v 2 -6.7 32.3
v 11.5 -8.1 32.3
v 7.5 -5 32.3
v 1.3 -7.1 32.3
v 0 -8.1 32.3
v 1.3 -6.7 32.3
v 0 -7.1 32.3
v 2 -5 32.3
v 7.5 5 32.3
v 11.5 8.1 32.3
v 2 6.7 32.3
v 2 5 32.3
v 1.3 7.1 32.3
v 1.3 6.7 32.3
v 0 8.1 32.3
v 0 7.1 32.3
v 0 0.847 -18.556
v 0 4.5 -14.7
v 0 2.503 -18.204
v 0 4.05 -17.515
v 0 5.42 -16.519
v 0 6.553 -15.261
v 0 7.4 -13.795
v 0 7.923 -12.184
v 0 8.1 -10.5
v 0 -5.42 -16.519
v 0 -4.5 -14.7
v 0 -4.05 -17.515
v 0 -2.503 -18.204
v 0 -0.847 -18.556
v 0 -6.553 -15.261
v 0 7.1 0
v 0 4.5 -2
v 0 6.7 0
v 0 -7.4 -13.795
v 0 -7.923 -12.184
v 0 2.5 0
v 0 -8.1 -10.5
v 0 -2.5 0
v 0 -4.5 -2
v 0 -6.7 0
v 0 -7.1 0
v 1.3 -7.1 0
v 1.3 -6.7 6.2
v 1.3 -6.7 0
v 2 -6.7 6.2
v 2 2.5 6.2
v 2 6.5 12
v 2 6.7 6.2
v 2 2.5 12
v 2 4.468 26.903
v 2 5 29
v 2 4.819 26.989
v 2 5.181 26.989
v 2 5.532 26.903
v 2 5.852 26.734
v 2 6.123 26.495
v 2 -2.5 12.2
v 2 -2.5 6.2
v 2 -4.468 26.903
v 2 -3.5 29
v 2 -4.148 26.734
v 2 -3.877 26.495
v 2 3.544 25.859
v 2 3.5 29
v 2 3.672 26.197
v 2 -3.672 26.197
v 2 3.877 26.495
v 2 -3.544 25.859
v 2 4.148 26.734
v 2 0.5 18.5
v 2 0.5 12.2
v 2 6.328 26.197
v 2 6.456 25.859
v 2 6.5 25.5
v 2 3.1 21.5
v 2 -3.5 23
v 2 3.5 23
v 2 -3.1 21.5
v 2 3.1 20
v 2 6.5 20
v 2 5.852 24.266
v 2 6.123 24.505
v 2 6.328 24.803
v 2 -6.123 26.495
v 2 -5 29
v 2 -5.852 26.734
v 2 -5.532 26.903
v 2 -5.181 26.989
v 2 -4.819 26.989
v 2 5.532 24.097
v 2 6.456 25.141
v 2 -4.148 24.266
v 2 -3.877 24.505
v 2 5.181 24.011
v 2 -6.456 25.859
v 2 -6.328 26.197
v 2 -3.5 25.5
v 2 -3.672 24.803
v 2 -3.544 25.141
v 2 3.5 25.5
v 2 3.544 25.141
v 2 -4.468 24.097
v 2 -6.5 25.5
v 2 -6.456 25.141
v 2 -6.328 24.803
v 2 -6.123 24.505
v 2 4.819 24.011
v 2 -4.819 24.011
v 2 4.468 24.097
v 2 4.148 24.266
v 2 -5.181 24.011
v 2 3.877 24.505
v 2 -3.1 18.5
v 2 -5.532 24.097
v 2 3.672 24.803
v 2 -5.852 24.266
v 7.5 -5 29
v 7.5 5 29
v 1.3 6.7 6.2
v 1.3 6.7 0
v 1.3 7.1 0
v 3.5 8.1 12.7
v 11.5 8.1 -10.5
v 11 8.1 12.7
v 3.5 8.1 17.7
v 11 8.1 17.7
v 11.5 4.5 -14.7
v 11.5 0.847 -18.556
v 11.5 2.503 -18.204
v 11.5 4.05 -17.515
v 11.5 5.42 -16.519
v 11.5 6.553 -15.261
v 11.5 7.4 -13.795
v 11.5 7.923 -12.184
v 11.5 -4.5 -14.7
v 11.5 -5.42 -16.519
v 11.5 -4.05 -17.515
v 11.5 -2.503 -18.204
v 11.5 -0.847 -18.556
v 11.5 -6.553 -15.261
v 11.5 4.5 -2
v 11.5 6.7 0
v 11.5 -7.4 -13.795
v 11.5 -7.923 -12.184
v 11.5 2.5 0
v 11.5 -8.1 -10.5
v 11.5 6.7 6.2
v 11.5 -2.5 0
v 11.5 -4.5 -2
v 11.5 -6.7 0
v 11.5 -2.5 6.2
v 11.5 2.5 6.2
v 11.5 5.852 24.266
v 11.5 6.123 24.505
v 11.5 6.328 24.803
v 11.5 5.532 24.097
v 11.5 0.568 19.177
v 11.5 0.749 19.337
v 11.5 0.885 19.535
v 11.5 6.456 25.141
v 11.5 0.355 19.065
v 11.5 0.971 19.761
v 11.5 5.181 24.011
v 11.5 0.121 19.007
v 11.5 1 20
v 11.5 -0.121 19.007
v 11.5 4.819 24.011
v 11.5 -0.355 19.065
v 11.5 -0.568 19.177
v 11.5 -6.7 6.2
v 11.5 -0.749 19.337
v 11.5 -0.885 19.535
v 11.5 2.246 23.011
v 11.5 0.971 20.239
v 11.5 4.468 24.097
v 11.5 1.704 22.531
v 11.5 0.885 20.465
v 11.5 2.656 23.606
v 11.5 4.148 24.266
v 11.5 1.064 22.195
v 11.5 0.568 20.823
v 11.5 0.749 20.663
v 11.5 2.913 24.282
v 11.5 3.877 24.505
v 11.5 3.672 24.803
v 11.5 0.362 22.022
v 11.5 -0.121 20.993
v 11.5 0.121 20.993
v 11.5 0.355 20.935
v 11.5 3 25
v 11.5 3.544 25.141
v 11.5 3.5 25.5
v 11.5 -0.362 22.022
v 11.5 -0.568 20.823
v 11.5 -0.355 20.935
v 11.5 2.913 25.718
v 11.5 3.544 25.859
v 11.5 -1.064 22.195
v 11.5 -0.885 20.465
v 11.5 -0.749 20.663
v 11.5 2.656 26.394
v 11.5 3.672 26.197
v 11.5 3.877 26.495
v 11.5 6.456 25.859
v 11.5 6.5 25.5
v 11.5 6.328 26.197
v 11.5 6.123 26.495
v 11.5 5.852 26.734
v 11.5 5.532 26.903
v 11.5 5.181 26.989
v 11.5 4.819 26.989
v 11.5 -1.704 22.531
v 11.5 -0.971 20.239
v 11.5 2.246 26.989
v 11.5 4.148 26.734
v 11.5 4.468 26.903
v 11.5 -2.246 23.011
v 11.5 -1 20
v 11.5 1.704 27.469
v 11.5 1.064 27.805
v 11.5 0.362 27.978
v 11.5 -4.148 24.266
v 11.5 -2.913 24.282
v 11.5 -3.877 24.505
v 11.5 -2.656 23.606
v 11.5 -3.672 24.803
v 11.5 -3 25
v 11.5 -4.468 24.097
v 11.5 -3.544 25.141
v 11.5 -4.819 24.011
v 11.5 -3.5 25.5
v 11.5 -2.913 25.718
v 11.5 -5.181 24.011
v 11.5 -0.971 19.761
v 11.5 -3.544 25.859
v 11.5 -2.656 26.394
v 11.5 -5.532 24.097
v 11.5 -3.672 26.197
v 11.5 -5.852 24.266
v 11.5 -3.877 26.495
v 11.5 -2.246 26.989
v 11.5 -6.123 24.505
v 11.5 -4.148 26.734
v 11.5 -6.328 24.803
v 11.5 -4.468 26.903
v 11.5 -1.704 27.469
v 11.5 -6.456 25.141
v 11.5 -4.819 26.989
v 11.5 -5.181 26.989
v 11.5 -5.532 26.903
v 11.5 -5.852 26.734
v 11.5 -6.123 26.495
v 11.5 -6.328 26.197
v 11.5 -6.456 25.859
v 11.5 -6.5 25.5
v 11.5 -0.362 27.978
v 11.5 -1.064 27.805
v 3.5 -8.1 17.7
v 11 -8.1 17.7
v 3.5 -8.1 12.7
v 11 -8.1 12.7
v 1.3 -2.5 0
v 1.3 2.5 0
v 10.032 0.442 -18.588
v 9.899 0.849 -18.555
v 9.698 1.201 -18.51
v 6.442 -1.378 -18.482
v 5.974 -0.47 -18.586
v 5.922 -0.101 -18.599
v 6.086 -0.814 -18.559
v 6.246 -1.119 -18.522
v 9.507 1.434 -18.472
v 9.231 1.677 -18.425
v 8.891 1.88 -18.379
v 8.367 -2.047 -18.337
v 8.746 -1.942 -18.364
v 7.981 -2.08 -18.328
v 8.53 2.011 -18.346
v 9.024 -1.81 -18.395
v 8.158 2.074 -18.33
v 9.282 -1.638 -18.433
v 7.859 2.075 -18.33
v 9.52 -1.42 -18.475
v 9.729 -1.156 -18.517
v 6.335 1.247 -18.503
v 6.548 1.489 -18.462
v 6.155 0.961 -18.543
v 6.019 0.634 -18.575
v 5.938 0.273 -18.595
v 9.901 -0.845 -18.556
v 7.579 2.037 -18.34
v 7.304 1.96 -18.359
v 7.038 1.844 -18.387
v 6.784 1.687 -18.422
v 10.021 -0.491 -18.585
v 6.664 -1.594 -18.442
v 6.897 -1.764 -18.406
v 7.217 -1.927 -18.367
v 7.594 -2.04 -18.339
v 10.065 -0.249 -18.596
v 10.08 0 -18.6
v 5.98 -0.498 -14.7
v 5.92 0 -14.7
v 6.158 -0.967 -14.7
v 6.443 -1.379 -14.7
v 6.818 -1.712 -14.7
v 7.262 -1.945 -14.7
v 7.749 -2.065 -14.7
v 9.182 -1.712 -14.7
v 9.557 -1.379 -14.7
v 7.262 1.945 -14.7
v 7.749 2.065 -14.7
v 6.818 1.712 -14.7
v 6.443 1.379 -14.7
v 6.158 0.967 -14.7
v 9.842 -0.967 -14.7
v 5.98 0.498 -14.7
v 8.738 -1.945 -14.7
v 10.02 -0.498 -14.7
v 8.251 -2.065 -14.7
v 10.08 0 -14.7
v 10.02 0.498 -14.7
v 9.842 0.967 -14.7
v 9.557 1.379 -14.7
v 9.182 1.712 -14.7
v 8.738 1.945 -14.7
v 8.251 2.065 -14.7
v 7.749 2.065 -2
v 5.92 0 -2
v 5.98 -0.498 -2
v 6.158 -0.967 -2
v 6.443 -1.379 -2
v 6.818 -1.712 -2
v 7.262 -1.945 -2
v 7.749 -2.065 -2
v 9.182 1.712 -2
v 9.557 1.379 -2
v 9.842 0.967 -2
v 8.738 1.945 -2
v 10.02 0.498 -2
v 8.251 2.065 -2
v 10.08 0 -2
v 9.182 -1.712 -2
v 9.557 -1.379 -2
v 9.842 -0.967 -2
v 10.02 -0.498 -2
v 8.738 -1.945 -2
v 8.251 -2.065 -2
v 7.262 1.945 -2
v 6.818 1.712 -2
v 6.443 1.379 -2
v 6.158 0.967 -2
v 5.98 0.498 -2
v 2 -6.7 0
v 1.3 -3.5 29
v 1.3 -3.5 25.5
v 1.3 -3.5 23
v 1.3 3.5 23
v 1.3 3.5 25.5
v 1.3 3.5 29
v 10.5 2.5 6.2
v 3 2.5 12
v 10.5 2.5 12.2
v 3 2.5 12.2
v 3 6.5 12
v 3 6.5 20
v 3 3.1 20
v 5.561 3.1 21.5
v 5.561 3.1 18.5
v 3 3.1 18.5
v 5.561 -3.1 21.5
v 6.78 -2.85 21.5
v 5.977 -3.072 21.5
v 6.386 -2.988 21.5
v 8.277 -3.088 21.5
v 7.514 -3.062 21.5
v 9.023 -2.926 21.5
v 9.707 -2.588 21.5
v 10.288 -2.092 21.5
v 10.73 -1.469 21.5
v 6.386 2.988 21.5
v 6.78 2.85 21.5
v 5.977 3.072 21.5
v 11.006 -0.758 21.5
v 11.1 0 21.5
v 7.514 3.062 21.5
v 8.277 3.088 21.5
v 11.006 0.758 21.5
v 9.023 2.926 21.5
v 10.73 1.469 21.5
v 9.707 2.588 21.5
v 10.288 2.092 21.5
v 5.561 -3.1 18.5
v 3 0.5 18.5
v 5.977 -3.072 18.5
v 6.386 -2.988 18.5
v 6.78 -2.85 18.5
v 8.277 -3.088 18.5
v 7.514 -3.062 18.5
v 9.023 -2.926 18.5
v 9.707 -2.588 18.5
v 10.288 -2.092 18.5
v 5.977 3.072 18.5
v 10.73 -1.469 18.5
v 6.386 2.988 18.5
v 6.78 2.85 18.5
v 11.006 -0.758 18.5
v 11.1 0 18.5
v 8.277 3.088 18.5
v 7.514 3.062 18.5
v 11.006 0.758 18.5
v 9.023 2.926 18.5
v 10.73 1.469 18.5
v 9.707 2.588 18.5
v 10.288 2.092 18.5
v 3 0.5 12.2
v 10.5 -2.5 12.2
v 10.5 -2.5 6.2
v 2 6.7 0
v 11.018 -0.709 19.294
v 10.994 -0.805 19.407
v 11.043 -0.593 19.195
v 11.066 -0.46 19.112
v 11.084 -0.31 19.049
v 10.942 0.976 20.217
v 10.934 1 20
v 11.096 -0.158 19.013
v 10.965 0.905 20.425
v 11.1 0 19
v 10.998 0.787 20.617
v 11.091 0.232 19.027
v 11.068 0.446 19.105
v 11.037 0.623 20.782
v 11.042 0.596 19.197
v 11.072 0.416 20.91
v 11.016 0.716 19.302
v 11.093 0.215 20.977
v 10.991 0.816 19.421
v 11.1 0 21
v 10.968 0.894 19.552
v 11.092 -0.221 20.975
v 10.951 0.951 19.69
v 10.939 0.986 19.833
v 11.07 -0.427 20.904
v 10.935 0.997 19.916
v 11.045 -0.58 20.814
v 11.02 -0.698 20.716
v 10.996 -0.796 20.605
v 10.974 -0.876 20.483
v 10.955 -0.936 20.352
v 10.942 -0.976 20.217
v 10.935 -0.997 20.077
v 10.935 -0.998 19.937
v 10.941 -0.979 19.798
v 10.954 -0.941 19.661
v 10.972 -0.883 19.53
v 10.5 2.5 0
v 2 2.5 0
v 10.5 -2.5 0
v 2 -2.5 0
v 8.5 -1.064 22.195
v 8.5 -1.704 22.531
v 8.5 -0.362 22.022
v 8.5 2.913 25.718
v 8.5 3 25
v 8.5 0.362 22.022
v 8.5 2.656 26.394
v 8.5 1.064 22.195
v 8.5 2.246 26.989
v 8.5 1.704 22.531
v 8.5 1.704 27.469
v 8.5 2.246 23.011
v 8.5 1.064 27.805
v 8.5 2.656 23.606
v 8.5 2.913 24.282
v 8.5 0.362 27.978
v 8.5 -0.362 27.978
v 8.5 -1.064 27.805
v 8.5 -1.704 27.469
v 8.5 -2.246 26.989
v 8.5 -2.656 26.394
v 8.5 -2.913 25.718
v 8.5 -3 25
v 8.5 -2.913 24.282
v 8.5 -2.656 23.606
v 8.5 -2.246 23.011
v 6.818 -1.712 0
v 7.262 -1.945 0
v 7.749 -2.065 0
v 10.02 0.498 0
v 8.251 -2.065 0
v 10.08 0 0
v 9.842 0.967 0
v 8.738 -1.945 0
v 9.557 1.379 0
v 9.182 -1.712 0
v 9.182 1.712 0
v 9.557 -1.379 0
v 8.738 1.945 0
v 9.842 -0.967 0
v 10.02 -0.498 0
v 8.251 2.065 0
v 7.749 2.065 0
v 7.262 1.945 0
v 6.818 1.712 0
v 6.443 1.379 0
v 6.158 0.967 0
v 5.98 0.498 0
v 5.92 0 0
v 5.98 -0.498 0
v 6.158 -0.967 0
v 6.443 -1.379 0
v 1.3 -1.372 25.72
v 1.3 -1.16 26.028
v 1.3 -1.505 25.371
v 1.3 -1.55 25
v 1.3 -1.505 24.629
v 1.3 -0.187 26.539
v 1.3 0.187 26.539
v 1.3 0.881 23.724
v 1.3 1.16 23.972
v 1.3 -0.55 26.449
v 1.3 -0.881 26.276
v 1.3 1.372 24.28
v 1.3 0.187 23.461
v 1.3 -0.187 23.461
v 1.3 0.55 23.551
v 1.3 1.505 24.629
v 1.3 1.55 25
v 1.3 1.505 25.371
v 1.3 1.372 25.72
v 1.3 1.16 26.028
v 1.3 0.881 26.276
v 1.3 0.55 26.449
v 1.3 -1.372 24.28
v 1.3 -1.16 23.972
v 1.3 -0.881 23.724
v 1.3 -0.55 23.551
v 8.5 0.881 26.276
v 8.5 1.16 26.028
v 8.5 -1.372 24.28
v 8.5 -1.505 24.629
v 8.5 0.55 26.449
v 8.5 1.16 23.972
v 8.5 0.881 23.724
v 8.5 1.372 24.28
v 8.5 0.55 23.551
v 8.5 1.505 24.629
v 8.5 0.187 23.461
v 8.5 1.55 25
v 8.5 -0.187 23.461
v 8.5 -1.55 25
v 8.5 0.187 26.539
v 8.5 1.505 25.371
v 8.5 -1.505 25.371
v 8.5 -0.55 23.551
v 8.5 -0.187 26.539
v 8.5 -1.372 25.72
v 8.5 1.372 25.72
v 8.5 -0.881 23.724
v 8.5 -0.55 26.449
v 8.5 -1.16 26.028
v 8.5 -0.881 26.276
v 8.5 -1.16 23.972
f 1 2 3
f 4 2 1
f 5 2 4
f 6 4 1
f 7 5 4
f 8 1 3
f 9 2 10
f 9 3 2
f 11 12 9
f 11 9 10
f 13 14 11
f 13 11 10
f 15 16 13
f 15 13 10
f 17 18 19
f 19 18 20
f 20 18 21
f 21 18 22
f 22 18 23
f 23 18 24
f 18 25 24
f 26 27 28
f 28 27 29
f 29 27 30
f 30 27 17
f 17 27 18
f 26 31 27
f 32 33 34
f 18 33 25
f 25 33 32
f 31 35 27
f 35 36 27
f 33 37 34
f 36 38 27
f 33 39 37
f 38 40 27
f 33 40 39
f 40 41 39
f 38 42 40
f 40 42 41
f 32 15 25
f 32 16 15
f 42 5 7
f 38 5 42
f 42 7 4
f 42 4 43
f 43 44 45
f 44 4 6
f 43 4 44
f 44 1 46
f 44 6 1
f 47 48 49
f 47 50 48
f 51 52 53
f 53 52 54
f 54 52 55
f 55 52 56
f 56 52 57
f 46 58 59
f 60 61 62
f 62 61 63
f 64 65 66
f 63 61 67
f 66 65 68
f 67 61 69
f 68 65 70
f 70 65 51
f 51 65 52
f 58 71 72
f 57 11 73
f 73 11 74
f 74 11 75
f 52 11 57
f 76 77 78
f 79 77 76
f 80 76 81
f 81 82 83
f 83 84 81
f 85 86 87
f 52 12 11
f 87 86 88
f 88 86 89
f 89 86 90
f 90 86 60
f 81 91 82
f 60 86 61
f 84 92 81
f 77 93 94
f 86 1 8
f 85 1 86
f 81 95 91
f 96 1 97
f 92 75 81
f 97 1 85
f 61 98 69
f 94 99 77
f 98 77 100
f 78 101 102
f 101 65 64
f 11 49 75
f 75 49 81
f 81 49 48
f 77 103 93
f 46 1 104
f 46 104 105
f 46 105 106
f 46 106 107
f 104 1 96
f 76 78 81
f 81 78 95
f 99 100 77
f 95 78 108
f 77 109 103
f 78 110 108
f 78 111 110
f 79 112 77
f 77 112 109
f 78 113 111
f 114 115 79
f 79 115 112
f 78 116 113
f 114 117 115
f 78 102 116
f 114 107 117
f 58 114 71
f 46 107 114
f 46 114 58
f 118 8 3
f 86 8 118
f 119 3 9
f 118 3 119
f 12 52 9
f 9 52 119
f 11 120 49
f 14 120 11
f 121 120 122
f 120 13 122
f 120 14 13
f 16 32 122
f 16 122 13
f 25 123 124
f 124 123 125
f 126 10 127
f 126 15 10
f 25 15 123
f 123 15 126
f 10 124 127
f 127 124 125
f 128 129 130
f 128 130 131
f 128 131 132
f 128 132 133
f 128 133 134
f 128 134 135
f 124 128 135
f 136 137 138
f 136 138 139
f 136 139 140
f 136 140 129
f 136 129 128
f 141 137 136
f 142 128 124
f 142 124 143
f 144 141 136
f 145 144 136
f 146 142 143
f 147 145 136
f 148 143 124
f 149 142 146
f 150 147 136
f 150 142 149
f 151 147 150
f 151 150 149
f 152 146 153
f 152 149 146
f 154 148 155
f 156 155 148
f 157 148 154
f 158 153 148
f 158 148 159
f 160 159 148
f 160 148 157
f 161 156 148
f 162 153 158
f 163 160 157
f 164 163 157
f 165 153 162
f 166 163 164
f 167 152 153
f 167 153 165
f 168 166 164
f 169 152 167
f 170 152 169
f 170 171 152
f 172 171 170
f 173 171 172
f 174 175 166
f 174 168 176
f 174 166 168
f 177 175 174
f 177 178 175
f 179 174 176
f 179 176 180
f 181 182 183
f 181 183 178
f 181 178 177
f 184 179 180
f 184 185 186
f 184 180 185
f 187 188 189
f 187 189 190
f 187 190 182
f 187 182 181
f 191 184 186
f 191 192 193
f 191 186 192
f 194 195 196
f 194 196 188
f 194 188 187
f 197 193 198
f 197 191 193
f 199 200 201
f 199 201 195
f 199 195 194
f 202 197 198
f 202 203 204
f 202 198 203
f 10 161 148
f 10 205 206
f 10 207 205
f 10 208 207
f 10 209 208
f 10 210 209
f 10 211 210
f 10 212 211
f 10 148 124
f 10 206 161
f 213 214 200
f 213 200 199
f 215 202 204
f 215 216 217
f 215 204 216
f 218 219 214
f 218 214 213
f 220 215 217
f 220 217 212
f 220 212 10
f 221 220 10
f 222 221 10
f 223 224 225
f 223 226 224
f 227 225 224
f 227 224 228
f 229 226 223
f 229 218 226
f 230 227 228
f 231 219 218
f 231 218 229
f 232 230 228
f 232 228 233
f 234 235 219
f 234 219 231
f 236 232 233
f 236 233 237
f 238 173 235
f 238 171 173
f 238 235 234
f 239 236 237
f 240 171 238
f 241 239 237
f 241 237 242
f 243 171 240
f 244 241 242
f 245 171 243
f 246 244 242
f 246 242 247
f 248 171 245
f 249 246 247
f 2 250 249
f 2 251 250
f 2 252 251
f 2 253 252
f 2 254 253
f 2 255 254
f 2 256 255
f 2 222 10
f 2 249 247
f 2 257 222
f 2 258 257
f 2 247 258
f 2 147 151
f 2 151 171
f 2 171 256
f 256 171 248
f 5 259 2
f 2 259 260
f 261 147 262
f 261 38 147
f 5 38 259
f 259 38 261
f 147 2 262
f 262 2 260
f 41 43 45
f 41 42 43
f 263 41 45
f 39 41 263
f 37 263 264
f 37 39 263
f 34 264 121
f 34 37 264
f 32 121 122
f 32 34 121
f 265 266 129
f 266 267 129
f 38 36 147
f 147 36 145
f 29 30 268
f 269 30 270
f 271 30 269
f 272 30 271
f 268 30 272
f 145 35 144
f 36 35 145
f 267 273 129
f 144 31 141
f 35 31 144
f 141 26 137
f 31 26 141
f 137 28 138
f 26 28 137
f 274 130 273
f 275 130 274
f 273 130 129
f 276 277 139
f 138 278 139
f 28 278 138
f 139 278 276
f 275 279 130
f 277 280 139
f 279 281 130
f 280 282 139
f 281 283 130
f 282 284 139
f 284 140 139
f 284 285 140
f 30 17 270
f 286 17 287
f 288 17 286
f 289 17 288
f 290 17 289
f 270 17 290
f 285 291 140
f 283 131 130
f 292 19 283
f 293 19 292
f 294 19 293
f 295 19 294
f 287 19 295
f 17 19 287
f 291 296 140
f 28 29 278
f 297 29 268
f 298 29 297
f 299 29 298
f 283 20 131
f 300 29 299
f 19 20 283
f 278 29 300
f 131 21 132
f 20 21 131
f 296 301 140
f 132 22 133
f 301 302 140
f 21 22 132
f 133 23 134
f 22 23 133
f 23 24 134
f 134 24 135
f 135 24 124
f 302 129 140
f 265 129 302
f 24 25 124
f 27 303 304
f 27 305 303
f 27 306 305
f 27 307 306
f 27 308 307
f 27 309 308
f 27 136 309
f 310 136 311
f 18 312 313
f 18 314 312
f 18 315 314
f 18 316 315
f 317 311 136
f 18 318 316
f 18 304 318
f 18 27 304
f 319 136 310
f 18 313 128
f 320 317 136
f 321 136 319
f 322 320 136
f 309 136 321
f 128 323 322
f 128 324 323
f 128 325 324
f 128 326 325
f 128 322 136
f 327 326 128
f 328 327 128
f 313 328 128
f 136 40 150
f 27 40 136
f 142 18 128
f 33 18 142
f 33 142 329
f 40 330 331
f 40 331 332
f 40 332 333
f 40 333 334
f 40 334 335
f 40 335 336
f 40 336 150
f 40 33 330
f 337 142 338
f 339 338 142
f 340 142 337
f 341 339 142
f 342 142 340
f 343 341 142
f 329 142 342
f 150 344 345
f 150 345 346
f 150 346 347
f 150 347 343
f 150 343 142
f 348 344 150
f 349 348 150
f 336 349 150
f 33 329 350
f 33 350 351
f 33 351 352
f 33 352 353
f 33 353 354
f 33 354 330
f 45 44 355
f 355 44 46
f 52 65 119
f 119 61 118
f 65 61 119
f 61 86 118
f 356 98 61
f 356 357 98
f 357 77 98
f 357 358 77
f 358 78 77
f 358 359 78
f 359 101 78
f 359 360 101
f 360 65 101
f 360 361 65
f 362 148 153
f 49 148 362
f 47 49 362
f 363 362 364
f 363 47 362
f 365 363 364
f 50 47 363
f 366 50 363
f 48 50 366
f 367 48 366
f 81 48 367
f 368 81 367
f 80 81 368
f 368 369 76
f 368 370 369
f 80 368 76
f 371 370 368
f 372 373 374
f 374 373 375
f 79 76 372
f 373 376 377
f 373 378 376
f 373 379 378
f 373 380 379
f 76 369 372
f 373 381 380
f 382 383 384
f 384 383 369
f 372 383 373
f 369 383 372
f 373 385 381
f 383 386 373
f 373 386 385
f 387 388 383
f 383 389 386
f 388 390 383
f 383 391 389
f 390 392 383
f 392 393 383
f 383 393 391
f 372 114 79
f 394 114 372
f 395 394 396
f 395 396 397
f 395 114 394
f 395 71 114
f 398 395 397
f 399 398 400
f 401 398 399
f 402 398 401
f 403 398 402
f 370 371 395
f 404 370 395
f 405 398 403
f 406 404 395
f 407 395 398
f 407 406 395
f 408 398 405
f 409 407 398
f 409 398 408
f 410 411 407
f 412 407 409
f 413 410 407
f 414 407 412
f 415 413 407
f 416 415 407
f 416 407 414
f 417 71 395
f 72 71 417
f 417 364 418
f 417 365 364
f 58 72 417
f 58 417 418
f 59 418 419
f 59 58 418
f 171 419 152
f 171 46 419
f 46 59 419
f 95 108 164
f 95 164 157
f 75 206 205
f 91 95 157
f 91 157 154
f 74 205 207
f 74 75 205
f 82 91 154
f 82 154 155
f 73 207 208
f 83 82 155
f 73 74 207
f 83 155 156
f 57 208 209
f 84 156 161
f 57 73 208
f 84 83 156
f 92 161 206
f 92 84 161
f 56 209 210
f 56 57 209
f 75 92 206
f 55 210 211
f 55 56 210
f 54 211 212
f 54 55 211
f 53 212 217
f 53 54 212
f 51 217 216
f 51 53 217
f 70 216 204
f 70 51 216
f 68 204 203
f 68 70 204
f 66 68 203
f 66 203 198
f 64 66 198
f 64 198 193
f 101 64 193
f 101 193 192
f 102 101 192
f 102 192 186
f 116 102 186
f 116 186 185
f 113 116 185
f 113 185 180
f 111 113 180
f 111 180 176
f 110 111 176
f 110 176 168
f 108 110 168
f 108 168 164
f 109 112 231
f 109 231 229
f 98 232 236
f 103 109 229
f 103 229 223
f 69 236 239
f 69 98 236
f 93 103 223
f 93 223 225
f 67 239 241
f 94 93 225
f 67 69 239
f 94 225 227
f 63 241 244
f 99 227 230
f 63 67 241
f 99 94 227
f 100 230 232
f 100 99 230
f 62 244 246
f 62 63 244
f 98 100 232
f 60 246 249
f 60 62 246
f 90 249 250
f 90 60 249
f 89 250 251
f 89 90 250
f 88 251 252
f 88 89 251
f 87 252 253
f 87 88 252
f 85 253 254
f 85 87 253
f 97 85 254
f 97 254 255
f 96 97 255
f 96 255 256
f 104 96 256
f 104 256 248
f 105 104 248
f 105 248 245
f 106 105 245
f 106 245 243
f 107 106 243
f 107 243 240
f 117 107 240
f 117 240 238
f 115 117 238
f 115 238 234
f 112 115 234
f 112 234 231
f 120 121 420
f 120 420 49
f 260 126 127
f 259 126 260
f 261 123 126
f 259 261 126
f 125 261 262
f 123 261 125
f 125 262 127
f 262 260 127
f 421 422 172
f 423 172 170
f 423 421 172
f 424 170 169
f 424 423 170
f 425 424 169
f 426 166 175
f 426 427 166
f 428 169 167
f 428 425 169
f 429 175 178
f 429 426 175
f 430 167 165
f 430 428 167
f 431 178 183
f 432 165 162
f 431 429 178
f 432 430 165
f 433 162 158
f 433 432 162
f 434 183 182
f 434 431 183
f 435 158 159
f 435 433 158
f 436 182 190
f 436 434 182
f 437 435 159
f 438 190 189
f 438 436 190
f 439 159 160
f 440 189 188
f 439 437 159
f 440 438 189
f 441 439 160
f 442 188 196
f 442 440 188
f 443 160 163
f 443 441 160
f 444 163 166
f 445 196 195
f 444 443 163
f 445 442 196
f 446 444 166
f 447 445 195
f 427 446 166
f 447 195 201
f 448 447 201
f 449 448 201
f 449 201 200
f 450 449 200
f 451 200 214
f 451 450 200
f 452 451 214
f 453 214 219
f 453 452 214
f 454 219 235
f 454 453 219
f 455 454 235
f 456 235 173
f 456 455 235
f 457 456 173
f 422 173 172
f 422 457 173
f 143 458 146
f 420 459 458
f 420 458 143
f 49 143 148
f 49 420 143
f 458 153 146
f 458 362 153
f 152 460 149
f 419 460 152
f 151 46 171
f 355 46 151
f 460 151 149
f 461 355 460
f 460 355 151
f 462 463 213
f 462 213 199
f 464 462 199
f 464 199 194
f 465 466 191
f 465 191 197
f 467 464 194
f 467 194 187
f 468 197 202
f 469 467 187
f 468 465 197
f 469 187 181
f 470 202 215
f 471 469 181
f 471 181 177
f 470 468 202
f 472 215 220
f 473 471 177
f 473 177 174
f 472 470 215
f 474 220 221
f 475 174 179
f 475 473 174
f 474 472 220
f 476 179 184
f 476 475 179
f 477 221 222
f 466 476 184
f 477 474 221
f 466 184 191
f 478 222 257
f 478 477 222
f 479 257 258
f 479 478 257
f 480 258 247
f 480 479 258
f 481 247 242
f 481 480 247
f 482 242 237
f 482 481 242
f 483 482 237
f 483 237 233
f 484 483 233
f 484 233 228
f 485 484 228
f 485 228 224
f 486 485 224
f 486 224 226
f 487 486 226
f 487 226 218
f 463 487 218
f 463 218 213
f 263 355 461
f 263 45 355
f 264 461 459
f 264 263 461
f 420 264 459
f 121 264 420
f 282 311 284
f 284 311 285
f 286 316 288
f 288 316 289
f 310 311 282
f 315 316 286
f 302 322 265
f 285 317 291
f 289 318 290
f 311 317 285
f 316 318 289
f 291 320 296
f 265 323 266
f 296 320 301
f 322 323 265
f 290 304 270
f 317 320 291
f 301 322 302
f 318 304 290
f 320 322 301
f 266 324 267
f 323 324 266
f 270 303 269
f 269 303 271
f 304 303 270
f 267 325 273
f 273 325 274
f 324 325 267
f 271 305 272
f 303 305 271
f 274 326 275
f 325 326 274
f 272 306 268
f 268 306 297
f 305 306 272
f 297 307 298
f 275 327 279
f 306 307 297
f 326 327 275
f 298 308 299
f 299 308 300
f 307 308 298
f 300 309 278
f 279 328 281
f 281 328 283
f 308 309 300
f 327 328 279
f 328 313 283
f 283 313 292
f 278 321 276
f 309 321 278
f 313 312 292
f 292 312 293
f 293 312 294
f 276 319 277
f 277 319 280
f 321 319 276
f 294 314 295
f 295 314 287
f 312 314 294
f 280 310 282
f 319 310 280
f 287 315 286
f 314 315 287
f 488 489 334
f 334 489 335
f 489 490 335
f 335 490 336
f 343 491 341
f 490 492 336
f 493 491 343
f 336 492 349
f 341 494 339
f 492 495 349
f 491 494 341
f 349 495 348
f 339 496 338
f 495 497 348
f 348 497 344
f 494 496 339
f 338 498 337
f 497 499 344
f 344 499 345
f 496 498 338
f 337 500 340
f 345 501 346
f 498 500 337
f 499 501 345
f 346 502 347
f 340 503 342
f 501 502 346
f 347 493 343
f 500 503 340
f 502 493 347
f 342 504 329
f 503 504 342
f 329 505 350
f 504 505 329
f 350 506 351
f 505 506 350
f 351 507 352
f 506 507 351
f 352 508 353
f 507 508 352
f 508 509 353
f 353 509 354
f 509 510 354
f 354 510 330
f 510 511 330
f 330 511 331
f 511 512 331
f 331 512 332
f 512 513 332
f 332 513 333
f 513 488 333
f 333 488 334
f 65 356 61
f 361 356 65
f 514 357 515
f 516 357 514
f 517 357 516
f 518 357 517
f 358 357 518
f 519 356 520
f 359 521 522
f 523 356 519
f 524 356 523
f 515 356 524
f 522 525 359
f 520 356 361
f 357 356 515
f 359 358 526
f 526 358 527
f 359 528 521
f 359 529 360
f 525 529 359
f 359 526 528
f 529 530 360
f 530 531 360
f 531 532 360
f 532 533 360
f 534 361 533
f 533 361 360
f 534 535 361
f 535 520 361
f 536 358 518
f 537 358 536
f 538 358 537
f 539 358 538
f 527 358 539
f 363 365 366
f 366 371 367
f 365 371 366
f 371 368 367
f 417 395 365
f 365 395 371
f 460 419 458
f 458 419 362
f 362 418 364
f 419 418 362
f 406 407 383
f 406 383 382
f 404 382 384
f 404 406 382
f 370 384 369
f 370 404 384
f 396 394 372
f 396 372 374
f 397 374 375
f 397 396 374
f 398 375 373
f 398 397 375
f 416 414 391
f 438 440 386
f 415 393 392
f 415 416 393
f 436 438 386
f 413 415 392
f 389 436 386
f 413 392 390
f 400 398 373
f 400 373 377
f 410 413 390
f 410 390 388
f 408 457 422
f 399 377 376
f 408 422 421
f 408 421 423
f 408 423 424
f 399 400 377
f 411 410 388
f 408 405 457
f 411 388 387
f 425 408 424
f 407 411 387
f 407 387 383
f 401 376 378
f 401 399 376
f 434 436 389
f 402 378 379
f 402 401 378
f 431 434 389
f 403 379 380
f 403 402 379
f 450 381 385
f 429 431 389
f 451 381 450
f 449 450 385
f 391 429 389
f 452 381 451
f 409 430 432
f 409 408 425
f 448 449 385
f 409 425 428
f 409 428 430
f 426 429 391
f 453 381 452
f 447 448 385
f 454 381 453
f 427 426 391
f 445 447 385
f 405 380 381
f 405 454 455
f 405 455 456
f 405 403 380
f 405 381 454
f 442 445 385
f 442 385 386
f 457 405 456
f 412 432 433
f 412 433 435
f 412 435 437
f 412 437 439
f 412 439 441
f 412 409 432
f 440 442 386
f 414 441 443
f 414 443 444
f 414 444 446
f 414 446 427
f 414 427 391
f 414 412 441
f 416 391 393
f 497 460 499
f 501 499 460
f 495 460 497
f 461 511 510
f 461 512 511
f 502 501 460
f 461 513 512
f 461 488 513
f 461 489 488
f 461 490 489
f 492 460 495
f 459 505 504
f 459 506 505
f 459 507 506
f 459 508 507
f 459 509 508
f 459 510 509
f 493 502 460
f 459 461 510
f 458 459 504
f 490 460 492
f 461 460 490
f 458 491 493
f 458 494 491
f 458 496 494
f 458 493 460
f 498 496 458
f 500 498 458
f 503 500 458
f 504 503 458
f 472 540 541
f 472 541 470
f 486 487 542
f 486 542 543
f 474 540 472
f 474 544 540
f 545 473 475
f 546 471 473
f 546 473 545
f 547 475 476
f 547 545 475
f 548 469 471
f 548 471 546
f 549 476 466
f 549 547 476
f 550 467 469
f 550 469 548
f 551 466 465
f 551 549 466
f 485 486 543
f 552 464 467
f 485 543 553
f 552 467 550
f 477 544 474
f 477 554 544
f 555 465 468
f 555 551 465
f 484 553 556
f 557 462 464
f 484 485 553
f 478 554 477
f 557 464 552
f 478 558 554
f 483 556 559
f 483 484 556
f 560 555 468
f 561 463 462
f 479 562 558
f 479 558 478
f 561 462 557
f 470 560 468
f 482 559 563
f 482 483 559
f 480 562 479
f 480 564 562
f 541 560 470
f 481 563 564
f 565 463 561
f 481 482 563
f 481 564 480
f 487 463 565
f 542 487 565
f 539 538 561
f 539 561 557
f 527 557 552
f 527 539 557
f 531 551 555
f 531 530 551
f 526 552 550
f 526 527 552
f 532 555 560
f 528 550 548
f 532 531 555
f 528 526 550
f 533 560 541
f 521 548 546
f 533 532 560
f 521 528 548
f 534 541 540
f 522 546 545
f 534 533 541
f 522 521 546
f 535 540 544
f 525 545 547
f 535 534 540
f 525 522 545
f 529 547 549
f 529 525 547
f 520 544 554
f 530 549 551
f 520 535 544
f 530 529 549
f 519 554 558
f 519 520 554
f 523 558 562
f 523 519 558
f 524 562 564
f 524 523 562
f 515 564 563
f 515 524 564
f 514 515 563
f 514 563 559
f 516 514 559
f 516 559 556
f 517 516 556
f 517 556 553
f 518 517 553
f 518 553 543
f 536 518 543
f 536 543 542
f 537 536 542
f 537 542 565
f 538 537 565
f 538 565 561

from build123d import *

# Parameters (mm, degrees)
SKETCH_W         = 4.2
SKETCH_H         = 6.2
EXTRUDE_DEPTH    = 11.5
SKETCH001_W      = 14.2
SKETCH001_H      = 32.3
SKETCH001_R      = 1.55
EXTRUDE001_DEPTH = 1.3
SKETCH003_W      = 10
SKETCH003_H      = 4.382065
EXTRUDE003_DEPTH = 7.5
SKETCH004_W      = 13.4
SKETCH004_H      = 32.3
SKETCH004_W_2    = 7
SKETCH004_H_2    = 6
EXTRUDE004_DEPTH = 2
SKETCH005_W      = 6
SKETCH005_H      = 8
EXTRUDE005_DEPTH = 3
SKETCH009_W      = 18
SKETCH009_H      = 5
EXTRUDE013_DEPTH = 7.5
SKETCH012_W      = 9
SKETCH012_H      = 12.7
EXTRUDE014_DEPTH = 11.5
SKETCH011_R      = 2.08
EXTRUDE012_DEPTH = 20
SKETCH002_W      = 5
SKETCH002_H      = 12.2
EXTRUDE011_DEPTH = 10.5
EXTRUDE015_DEPTH = 3
SKETCH014_R      = 1
EXTRUDE016_DEPTH = 12
SKETCH015_R      = 1.5
EXTRUDE017_DEPTH = 11.5
SKETCH016_R      = 3
EXTRUDE018_DEPTH = 3
SKETCH010_R      = 1.55
EXTRUDE010_DEPTH = 12
EXTRUDE006_DEPTH = 11.5


with BuildPart() as extrude_body:
    # Sketch → Extrude (new body)
    with BuildSketch(Plane.YZ):
        with Locations((4.6, 3.1)):
            Rectangle(SKETCH_W, SKETCH_H)
    extrude(amount=EXTRUDE_DEPTH)


with BuildPart() as extrude001:
    # Sketch001 → Extrude001 (new body)
    with BuildSketch(Plane.YZ):
        with Locations((0, 16.15)):
            Rectangle(SKETCH001_W, SKETCH001_H)
        with Locations((0, 25)):
            Circle(SKETCH001_R, mode=Mode.SUBTRACT)
    extrude(amount=EXTRUDE001_DEPTH)


with BuildPart() as extrude003:
    # Sketch003 → Extrude003 (new body)
    with BuildSketch(Plane.YZ):
        with Locations((0, 31.191032)):
            Rectangle(SKETCH003_W, SKETCH003_H)
    extrude(amount=EXTRUDE003_DEPTH)


with BuildPart() as extrude004:
    # Sketch004 → Extrude004 (new body)
    with BuildSketch(Plane.YZ):
        with Locations((0, 16.15)):
            Rectangle(SKETCH004_W, SKETCH004_H)
        with Locations((0, 26)):
            Rectangle(SKETCH004_W_2, SKETCH004_H_2, mode=Mode.SUBTRACT)
    extrude(amount=EXTRUDE004_DEPTH)


with BuildPart() as extrude005:
    # Sketch005 → Extrude005 (new body)
    with BuildSketch(Plane.YZ):
        with Locations((3.5, 16)):
            Rectangle(SKETCH005_W, SKETCH005_H)
    extrude(amount=EXTRUDE005_DEPTH)


with BuildPart() as board:
    # Part__Mirroring: instance of Extrude body
    add(extrude_body.part.mirror(Plane(origin=(0, 0, 0), x_dir=(1, 0, 0), z_dir=(0, 1, 0))))

    # Fusion: union Extrude body, Extrude001, Extrude003, Extrude004, Extrude005
    add(extrude_body.part)
    add(extrude001.part)
    add(extrude003.part)
    add(extrude004.part)
    add(extrude005.part)


with BuildPart() as d_gagementgachette:
    # Sketch009 → Extrude013 (new body)
    with BuildSketch(Plane.YZ):
        with Locations((0, 15.2)):
            Rectangle(SKETCH009_W, SKETCH009_H)
    extrude(amount=EXTRUDE013_DEPTH)


with BuildPart() as d_gagementgachette_1:
    # Extrude013 placement: moved
    add(d_gagementgachette.part.moved(Location((3.5, 0, 0))))


with BuildPart() as d_gagementcirclip:
    # Sketch012 → Extrude014 (new body)
    with BuildSketch(Plane.YZ):
        with Locations((0, -8.35)):
            Rectangle(SKETCH012_W, SKETCH012_H)
    extrude(amount=EXTRUDE014_DEPTH)


with BuildPart() as percageaxe:
    # Sketch011 → Extrude012 (new body)
    with BuildSketch(Plane.XY):
        with Locations((8, 0)):
            Circle(SKETCH011_R)
    extrude(amount=-EXTRUDE012_DEPTH)


with BuildPart() as d_gagementaxe:
    # Sketch002 → Extrude011 (new body)
    with BuildSketch(Plane.YZ):
        with Locations((0, 6.1)):
            Rectangle(SKETCH002_W, SKETCH002_H)
    extrude(amount=EXTRUDE011_DEPTH)


with BuildPart() as logementaimantrappel:
    # Sketch013 → Extrude015 (new body)
    with BuildSketch(Plane.XY):
        with BuildLine():
            ThreePointArc((6.780369, -2.85), (11.1, 0), (6.780369, 2.85))
            ThreePointArc((6.780369, 2.85), (6.183233, 3.036857), (5.560738, 3.1))
            Line((5.560738, 3.1), (0, 3.1))
            Line((0, -3.1), (0, 3.1))
            Line((5.560738, -3.1), (0, -3.1))
            ThreePointArc((5.560738, -3.1), (6.183233, -3.036857), (6.780369, -2.85))
        make_face()
    extrude(amount=EXTRUDE015_DEPTH)


with BuildPart() as logementaimantrappel_1:
    # Extrude015 placement: moved
    add(logementaimantrappel.part.moved(Location((0, 0, 18.5))))


with BuildPart() as extractaimant:
    # Sketch014 → Extrude016 (new body)
    with BuildSketch(Plane.YZ):
        Circle(SKETCH014_R)
    extrude(amount=EXTRUDE016_DEPTH)


with BuildPart() as extractaimant_1:
    # Extrude016 placement: moved
    add(extractaimant.part.moved(Location((0, 0, 20))))


with BuildPart() as d_gagementleds:
    # Sketch015 → Extrude017 (new body)
    with BuildSketch(Plane.YZ):
        with Locations((-5, 25.5)):
            Circle(SKETCH015_R)
        with Locations((5, 25.5)):
            Circle(SKETCH015_R)
    extrude(amount=EXTRUDE017_DEPTH)


with BuildPart() as t_tevis:
    # Sketch016 → Extrude018 (new body)
    with BuildSketch(Plane.YZ):
        with Locations((0, 25)):
            Circle(SKETCH016_R)
    extrude(amount=EXTRUDE018_DEPTH)


with BuildPart() as t_tevis_1:
    # Extrude018 placement: moved
    add(t_tevis.part.moved(Location((8.5, 0, 0))))


with BuildPart() as fusion002:
    # Sketch010 → Extrude010 (new body)
    with BuildSketch(Plane.YZ):
        with Locations((0, 25)):
            Circle(SKETCH010_R)
    extrude(amount=EXTRUDE010_DEPTH)

    # Fusion002: union DégagementGachette, DégagementCirclip, PercageAxe, DégagementAxe, LogementAimantRappel, ExtractAimant, DégagementLeds, TêteVis
    add(d_gagementgachette_1.part)
    add(d_gagementcirclip.part)
    add(percageaxe.part)
    add(d_gagementaxe.part)
    add(logementaimantrappel_1.part)
    add(extractaimant_1.part)
    add(d_gagementleds.part)
    add(t_tevis_1.part)


with BuildPart() as cut001:
    # Sketch006 → Extrude006 (new body)
    with BuildSketch(Plane.YZ):
        with BuildLine():
            Line((-8.1, 32.3), (8.1, 32.3))
            Line((8.1, -10.5), (8.1, 32.3))
            ThreePointArc((-8.1, -10.5), (0, -18.6), (8.1, -10.5))
            Line((-8.1, 32.3), (-8.1, -10.5))
        make_face()
    extrude(amount=EXTRUDE006_DEPTH)

    # Cut: cut Fusion002
    add(fusion002.part, mode=Mode.SUBTRACT)

    # Cut001: cut Board
    add(board.part, mode=Mode.SUBTRACT)


solid = cut001.part
